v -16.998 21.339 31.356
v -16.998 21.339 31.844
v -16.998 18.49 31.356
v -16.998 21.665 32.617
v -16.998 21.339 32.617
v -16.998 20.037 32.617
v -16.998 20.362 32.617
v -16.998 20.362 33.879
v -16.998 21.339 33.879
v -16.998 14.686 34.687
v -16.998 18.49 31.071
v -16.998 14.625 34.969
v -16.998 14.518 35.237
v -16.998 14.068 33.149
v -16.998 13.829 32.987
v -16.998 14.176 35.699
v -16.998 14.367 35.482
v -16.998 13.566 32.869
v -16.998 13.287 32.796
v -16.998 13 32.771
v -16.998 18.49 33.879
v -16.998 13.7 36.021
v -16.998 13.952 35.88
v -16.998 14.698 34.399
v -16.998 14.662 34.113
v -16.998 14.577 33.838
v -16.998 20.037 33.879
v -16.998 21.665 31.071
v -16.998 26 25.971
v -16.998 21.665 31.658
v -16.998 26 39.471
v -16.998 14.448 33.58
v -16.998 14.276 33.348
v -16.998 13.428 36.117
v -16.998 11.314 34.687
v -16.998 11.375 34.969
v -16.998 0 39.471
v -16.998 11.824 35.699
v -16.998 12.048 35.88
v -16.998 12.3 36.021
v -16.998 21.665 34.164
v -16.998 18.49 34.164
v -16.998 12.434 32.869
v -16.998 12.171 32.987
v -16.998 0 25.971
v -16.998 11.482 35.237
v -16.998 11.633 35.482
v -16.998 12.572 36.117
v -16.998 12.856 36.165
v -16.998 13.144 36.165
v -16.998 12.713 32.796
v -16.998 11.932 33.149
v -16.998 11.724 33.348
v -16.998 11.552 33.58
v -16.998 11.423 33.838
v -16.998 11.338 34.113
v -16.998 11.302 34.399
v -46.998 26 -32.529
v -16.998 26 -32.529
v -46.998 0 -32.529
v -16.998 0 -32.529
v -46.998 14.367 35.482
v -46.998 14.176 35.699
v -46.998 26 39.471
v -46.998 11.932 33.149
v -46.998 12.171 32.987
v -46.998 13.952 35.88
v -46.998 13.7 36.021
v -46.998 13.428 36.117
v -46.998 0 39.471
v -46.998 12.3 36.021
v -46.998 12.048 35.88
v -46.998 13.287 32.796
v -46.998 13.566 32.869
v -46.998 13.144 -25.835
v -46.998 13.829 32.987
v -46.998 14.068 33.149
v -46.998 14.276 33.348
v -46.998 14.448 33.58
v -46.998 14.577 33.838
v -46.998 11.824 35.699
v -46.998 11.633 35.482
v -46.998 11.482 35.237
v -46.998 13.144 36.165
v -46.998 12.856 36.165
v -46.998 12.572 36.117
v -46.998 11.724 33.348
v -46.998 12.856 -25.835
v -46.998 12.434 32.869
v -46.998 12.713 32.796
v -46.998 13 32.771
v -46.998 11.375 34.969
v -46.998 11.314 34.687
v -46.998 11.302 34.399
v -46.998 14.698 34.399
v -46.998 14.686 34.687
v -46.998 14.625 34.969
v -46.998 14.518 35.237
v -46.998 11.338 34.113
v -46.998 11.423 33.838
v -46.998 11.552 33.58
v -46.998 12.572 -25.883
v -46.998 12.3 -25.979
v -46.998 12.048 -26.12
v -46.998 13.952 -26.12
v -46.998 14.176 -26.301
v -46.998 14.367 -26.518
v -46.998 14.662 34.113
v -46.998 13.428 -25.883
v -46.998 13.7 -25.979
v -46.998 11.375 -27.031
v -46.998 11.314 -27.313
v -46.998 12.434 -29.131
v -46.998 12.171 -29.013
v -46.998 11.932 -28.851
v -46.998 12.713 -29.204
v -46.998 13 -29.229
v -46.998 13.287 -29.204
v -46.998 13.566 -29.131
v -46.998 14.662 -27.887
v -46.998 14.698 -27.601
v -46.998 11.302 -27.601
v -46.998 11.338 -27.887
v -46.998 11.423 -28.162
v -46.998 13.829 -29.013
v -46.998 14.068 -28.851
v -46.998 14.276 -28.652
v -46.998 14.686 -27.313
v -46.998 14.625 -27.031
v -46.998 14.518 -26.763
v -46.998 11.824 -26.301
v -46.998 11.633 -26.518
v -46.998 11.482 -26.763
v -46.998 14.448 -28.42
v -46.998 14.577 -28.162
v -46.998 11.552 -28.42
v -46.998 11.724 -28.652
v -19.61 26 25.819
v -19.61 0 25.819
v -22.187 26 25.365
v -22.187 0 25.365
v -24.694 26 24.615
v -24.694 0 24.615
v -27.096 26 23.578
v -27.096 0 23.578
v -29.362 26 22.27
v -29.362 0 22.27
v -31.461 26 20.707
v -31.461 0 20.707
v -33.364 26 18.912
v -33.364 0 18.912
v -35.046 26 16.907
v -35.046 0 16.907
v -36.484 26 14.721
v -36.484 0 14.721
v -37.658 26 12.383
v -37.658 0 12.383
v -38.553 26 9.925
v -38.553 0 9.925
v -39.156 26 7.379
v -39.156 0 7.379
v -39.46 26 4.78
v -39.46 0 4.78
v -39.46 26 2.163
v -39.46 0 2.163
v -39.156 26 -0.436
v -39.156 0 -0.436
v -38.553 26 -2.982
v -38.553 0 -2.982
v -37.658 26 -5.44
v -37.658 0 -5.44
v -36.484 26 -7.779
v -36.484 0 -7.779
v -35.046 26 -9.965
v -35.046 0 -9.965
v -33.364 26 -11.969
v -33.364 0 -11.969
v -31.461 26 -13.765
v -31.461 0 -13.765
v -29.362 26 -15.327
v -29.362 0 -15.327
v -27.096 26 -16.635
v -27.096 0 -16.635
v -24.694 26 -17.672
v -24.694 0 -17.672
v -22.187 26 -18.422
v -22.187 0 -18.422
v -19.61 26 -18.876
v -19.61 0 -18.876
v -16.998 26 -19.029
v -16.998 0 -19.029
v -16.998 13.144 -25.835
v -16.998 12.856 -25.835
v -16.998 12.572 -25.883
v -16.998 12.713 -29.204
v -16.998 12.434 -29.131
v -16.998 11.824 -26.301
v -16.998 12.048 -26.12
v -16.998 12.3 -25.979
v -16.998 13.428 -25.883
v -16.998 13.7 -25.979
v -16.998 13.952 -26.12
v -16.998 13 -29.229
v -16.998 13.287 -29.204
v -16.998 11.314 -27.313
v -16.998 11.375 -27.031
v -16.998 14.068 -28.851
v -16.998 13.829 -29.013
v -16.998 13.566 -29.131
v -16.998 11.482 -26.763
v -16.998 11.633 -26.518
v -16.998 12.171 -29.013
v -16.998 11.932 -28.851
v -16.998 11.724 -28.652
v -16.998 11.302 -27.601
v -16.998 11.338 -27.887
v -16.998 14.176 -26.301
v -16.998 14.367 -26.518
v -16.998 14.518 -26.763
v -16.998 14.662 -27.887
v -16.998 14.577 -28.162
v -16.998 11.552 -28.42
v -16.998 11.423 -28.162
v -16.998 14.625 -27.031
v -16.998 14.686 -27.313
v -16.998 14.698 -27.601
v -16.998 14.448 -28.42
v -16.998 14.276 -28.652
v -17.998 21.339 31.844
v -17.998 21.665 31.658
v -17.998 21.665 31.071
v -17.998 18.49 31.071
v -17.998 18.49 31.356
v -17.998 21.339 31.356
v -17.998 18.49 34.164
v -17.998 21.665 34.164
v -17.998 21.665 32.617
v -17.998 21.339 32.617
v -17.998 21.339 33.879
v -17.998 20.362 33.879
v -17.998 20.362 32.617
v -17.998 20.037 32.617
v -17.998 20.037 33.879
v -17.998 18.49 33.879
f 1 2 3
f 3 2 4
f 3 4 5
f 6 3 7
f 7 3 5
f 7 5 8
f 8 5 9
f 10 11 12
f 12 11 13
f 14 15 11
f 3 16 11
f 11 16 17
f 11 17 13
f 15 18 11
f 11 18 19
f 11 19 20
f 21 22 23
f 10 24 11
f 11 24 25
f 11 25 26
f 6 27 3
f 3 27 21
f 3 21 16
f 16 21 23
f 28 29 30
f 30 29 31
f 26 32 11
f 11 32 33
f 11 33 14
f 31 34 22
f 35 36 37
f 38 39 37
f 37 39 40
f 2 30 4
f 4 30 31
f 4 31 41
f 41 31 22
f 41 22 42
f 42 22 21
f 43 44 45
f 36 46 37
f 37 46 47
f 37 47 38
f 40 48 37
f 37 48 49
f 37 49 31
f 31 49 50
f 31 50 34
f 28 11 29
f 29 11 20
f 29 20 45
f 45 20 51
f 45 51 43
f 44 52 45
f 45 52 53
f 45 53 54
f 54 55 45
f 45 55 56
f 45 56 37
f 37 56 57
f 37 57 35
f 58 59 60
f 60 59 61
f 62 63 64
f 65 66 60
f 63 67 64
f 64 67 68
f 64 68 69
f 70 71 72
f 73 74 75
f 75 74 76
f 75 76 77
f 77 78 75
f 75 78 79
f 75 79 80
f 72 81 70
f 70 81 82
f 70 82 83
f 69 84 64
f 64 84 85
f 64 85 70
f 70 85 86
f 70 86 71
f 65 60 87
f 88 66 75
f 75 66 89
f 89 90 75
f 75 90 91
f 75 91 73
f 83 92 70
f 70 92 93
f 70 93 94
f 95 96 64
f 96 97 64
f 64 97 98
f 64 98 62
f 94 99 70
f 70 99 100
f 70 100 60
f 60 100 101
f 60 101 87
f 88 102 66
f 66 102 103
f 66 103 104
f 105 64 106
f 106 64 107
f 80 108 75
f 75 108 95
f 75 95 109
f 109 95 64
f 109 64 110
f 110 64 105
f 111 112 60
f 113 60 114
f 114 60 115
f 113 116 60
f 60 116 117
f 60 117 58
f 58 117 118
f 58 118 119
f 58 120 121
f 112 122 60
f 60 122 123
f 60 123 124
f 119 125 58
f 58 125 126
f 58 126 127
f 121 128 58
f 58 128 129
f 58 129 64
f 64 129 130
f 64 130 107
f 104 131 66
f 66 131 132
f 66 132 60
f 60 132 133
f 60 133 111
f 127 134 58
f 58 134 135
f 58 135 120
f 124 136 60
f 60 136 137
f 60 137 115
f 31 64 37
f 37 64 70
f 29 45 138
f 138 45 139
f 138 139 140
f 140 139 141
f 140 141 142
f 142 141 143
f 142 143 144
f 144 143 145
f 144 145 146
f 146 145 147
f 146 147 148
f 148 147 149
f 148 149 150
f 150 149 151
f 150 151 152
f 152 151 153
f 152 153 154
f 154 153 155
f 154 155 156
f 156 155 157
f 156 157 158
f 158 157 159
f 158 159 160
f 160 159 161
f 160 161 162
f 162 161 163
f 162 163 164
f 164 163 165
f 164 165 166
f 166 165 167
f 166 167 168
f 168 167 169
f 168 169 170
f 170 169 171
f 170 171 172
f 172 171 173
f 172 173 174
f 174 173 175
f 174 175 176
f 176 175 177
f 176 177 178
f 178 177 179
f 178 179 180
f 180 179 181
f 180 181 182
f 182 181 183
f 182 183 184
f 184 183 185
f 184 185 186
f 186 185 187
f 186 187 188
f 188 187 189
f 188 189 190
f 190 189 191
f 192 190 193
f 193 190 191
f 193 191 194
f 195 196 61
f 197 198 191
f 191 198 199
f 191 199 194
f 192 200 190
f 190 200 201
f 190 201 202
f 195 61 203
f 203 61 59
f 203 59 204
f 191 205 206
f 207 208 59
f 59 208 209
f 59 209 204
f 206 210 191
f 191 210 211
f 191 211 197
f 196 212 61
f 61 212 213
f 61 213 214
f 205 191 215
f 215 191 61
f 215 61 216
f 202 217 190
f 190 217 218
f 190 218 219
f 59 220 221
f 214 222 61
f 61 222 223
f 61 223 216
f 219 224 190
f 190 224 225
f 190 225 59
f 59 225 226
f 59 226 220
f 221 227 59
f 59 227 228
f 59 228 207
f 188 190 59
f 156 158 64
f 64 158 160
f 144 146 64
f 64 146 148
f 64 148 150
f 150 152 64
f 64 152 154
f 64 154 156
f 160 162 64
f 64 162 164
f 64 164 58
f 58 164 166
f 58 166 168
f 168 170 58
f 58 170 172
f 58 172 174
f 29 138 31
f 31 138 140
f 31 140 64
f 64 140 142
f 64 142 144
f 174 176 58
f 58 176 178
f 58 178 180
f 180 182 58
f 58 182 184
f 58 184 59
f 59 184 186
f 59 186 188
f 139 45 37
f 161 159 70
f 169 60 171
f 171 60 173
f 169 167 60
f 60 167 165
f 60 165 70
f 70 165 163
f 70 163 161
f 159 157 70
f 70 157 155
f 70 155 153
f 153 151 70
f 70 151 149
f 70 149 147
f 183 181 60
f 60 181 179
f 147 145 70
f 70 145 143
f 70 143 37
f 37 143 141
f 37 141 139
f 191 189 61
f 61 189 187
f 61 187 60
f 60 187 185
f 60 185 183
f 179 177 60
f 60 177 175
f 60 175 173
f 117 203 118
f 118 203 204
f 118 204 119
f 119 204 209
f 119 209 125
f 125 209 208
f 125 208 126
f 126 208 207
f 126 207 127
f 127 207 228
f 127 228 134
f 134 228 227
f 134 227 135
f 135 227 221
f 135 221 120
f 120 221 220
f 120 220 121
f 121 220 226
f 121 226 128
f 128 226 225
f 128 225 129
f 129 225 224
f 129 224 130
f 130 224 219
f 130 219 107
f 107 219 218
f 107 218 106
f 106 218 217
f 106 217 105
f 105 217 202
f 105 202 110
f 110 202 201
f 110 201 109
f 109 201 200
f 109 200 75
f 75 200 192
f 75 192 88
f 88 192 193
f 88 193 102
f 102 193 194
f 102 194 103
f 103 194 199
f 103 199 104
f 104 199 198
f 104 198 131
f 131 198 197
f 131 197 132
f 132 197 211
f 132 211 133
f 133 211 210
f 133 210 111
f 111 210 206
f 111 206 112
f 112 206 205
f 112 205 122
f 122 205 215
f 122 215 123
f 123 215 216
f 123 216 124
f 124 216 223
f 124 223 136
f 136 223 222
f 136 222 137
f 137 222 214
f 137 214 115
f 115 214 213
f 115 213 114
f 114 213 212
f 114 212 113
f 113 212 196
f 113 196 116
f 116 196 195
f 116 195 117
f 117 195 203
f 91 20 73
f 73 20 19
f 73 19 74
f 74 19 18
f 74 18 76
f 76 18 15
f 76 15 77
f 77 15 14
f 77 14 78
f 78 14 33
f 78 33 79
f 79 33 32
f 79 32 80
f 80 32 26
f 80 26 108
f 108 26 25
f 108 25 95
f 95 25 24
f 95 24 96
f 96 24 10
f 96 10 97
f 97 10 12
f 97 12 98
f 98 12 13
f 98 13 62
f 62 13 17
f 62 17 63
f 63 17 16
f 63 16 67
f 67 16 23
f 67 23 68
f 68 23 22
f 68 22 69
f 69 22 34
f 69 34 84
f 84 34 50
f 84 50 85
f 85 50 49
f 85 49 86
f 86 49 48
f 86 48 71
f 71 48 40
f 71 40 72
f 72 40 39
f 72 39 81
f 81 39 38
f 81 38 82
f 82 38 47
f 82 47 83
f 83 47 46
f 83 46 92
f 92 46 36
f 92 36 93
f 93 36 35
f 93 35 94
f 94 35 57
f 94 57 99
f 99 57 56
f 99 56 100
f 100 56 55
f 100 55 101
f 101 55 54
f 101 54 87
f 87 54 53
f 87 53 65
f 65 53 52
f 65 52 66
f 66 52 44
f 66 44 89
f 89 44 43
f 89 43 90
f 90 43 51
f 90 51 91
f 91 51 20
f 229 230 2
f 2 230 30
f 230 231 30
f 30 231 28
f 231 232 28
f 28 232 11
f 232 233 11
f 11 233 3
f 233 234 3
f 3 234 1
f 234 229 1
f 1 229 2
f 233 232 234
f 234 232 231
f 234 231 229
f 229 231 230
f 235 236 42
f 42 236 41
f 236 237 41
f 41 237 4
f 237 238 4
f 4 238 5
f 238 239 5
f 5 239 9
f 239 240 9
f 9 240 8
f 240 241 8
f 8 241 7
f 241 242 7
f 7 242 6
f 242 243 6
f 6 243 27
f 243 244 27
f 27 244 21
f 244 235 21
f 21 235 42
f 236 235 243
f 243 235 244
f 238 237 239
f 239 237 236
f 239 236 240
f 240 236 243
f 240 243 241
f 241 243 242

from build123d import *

# Parameters (mm, degrees)
BOSS_EXTRUDE1_DEPTH = 26
SKETCH2_R           = 1.7
CUT_EXTRUDE1_DEPTH  = 31
CUT_EXTRUDE2_DEPTH  = 1


with BuildPart() as part:
    # Sketch1 → Boss-Extrude1 (new body)
    with BuildSketch(Plane(origin=(0, 0, 0), x_dir=(1, 0, 0), z_dir=(0, 1, 0))):
        with BuildLine():
            Line((-46.998275301, 32.528571429), (-46.998275301, -39.471428571))
            Line((-46.998275301, -39.471428571), (-16.998275301, -39.471428571))
            Line((-16.998275301, -39.471428571), (-16.998275301, -25.971428571))
            ThreePointArc((-16.998275301, -25.971428571), (-39.498275301, -3.471428571), (-16.998275301, 19.028571429))
            Line((-16.998275301, 19.028571429), (-16.998275301, 32.528571429))
            Line((-16.998275301, 32.528571429), (-46.998275301, 32.528571429))
        make_face()
    extrude(amount=BOSS_EXTRUDE1_DEPTH)

    # Sketch2 → Cut-Extrude1 (cut, through all)
    with BuildSketch(Plane(origin=(-16.998275301, 0, 0), x_dir=(0, 0, -1), z_dir=(1, 0, 0))):
        with Locations((-34.471428571, 13)):
            Circle(SKETCH2_R)
        with Locations((27.528571429, 13)):
            Circle(SKETCH2_R)
    extrude(amount=-CUT_EXTRUDE1_DEPTH, mode=Mode.SUBTRACT)

    # Sketch3 → Cut-Extrude2 (cut)
    with BuildSketch(Plane(origin=(-16.998275301, 0, 0), x_dir=(0, 0, -1), z_dir=(1, 0, 0))):
        Polygon((-34.164231178, 21.664809495), (-32.617436306, 21.664809495), (-32.617436306, 21.33916847), (-33.87929528, 21.33916847), (-33.87929528, 20.362245393), (-32.617436306, 20.362245393), (-32.617436306, 20.036604367), (-33.87929528, 20.036604367), (-33.87929528, 18.489809495), (-34.164231178, 18.489809495), align=None)
        Polygon((-31.657685705, 21.664809495), (-31.070641434, 21.664809495), (-31.070641434, 18.489809495), (-31.355577332, 18.489809495), (-31.355577332, 21.33916847), (-31.84403887, 21.33916847), align=None)
    extrude(amount=-CUT_EXTRUDE2_DEPTH, mode=Mode.SUBTRACT)


solid = part.part
